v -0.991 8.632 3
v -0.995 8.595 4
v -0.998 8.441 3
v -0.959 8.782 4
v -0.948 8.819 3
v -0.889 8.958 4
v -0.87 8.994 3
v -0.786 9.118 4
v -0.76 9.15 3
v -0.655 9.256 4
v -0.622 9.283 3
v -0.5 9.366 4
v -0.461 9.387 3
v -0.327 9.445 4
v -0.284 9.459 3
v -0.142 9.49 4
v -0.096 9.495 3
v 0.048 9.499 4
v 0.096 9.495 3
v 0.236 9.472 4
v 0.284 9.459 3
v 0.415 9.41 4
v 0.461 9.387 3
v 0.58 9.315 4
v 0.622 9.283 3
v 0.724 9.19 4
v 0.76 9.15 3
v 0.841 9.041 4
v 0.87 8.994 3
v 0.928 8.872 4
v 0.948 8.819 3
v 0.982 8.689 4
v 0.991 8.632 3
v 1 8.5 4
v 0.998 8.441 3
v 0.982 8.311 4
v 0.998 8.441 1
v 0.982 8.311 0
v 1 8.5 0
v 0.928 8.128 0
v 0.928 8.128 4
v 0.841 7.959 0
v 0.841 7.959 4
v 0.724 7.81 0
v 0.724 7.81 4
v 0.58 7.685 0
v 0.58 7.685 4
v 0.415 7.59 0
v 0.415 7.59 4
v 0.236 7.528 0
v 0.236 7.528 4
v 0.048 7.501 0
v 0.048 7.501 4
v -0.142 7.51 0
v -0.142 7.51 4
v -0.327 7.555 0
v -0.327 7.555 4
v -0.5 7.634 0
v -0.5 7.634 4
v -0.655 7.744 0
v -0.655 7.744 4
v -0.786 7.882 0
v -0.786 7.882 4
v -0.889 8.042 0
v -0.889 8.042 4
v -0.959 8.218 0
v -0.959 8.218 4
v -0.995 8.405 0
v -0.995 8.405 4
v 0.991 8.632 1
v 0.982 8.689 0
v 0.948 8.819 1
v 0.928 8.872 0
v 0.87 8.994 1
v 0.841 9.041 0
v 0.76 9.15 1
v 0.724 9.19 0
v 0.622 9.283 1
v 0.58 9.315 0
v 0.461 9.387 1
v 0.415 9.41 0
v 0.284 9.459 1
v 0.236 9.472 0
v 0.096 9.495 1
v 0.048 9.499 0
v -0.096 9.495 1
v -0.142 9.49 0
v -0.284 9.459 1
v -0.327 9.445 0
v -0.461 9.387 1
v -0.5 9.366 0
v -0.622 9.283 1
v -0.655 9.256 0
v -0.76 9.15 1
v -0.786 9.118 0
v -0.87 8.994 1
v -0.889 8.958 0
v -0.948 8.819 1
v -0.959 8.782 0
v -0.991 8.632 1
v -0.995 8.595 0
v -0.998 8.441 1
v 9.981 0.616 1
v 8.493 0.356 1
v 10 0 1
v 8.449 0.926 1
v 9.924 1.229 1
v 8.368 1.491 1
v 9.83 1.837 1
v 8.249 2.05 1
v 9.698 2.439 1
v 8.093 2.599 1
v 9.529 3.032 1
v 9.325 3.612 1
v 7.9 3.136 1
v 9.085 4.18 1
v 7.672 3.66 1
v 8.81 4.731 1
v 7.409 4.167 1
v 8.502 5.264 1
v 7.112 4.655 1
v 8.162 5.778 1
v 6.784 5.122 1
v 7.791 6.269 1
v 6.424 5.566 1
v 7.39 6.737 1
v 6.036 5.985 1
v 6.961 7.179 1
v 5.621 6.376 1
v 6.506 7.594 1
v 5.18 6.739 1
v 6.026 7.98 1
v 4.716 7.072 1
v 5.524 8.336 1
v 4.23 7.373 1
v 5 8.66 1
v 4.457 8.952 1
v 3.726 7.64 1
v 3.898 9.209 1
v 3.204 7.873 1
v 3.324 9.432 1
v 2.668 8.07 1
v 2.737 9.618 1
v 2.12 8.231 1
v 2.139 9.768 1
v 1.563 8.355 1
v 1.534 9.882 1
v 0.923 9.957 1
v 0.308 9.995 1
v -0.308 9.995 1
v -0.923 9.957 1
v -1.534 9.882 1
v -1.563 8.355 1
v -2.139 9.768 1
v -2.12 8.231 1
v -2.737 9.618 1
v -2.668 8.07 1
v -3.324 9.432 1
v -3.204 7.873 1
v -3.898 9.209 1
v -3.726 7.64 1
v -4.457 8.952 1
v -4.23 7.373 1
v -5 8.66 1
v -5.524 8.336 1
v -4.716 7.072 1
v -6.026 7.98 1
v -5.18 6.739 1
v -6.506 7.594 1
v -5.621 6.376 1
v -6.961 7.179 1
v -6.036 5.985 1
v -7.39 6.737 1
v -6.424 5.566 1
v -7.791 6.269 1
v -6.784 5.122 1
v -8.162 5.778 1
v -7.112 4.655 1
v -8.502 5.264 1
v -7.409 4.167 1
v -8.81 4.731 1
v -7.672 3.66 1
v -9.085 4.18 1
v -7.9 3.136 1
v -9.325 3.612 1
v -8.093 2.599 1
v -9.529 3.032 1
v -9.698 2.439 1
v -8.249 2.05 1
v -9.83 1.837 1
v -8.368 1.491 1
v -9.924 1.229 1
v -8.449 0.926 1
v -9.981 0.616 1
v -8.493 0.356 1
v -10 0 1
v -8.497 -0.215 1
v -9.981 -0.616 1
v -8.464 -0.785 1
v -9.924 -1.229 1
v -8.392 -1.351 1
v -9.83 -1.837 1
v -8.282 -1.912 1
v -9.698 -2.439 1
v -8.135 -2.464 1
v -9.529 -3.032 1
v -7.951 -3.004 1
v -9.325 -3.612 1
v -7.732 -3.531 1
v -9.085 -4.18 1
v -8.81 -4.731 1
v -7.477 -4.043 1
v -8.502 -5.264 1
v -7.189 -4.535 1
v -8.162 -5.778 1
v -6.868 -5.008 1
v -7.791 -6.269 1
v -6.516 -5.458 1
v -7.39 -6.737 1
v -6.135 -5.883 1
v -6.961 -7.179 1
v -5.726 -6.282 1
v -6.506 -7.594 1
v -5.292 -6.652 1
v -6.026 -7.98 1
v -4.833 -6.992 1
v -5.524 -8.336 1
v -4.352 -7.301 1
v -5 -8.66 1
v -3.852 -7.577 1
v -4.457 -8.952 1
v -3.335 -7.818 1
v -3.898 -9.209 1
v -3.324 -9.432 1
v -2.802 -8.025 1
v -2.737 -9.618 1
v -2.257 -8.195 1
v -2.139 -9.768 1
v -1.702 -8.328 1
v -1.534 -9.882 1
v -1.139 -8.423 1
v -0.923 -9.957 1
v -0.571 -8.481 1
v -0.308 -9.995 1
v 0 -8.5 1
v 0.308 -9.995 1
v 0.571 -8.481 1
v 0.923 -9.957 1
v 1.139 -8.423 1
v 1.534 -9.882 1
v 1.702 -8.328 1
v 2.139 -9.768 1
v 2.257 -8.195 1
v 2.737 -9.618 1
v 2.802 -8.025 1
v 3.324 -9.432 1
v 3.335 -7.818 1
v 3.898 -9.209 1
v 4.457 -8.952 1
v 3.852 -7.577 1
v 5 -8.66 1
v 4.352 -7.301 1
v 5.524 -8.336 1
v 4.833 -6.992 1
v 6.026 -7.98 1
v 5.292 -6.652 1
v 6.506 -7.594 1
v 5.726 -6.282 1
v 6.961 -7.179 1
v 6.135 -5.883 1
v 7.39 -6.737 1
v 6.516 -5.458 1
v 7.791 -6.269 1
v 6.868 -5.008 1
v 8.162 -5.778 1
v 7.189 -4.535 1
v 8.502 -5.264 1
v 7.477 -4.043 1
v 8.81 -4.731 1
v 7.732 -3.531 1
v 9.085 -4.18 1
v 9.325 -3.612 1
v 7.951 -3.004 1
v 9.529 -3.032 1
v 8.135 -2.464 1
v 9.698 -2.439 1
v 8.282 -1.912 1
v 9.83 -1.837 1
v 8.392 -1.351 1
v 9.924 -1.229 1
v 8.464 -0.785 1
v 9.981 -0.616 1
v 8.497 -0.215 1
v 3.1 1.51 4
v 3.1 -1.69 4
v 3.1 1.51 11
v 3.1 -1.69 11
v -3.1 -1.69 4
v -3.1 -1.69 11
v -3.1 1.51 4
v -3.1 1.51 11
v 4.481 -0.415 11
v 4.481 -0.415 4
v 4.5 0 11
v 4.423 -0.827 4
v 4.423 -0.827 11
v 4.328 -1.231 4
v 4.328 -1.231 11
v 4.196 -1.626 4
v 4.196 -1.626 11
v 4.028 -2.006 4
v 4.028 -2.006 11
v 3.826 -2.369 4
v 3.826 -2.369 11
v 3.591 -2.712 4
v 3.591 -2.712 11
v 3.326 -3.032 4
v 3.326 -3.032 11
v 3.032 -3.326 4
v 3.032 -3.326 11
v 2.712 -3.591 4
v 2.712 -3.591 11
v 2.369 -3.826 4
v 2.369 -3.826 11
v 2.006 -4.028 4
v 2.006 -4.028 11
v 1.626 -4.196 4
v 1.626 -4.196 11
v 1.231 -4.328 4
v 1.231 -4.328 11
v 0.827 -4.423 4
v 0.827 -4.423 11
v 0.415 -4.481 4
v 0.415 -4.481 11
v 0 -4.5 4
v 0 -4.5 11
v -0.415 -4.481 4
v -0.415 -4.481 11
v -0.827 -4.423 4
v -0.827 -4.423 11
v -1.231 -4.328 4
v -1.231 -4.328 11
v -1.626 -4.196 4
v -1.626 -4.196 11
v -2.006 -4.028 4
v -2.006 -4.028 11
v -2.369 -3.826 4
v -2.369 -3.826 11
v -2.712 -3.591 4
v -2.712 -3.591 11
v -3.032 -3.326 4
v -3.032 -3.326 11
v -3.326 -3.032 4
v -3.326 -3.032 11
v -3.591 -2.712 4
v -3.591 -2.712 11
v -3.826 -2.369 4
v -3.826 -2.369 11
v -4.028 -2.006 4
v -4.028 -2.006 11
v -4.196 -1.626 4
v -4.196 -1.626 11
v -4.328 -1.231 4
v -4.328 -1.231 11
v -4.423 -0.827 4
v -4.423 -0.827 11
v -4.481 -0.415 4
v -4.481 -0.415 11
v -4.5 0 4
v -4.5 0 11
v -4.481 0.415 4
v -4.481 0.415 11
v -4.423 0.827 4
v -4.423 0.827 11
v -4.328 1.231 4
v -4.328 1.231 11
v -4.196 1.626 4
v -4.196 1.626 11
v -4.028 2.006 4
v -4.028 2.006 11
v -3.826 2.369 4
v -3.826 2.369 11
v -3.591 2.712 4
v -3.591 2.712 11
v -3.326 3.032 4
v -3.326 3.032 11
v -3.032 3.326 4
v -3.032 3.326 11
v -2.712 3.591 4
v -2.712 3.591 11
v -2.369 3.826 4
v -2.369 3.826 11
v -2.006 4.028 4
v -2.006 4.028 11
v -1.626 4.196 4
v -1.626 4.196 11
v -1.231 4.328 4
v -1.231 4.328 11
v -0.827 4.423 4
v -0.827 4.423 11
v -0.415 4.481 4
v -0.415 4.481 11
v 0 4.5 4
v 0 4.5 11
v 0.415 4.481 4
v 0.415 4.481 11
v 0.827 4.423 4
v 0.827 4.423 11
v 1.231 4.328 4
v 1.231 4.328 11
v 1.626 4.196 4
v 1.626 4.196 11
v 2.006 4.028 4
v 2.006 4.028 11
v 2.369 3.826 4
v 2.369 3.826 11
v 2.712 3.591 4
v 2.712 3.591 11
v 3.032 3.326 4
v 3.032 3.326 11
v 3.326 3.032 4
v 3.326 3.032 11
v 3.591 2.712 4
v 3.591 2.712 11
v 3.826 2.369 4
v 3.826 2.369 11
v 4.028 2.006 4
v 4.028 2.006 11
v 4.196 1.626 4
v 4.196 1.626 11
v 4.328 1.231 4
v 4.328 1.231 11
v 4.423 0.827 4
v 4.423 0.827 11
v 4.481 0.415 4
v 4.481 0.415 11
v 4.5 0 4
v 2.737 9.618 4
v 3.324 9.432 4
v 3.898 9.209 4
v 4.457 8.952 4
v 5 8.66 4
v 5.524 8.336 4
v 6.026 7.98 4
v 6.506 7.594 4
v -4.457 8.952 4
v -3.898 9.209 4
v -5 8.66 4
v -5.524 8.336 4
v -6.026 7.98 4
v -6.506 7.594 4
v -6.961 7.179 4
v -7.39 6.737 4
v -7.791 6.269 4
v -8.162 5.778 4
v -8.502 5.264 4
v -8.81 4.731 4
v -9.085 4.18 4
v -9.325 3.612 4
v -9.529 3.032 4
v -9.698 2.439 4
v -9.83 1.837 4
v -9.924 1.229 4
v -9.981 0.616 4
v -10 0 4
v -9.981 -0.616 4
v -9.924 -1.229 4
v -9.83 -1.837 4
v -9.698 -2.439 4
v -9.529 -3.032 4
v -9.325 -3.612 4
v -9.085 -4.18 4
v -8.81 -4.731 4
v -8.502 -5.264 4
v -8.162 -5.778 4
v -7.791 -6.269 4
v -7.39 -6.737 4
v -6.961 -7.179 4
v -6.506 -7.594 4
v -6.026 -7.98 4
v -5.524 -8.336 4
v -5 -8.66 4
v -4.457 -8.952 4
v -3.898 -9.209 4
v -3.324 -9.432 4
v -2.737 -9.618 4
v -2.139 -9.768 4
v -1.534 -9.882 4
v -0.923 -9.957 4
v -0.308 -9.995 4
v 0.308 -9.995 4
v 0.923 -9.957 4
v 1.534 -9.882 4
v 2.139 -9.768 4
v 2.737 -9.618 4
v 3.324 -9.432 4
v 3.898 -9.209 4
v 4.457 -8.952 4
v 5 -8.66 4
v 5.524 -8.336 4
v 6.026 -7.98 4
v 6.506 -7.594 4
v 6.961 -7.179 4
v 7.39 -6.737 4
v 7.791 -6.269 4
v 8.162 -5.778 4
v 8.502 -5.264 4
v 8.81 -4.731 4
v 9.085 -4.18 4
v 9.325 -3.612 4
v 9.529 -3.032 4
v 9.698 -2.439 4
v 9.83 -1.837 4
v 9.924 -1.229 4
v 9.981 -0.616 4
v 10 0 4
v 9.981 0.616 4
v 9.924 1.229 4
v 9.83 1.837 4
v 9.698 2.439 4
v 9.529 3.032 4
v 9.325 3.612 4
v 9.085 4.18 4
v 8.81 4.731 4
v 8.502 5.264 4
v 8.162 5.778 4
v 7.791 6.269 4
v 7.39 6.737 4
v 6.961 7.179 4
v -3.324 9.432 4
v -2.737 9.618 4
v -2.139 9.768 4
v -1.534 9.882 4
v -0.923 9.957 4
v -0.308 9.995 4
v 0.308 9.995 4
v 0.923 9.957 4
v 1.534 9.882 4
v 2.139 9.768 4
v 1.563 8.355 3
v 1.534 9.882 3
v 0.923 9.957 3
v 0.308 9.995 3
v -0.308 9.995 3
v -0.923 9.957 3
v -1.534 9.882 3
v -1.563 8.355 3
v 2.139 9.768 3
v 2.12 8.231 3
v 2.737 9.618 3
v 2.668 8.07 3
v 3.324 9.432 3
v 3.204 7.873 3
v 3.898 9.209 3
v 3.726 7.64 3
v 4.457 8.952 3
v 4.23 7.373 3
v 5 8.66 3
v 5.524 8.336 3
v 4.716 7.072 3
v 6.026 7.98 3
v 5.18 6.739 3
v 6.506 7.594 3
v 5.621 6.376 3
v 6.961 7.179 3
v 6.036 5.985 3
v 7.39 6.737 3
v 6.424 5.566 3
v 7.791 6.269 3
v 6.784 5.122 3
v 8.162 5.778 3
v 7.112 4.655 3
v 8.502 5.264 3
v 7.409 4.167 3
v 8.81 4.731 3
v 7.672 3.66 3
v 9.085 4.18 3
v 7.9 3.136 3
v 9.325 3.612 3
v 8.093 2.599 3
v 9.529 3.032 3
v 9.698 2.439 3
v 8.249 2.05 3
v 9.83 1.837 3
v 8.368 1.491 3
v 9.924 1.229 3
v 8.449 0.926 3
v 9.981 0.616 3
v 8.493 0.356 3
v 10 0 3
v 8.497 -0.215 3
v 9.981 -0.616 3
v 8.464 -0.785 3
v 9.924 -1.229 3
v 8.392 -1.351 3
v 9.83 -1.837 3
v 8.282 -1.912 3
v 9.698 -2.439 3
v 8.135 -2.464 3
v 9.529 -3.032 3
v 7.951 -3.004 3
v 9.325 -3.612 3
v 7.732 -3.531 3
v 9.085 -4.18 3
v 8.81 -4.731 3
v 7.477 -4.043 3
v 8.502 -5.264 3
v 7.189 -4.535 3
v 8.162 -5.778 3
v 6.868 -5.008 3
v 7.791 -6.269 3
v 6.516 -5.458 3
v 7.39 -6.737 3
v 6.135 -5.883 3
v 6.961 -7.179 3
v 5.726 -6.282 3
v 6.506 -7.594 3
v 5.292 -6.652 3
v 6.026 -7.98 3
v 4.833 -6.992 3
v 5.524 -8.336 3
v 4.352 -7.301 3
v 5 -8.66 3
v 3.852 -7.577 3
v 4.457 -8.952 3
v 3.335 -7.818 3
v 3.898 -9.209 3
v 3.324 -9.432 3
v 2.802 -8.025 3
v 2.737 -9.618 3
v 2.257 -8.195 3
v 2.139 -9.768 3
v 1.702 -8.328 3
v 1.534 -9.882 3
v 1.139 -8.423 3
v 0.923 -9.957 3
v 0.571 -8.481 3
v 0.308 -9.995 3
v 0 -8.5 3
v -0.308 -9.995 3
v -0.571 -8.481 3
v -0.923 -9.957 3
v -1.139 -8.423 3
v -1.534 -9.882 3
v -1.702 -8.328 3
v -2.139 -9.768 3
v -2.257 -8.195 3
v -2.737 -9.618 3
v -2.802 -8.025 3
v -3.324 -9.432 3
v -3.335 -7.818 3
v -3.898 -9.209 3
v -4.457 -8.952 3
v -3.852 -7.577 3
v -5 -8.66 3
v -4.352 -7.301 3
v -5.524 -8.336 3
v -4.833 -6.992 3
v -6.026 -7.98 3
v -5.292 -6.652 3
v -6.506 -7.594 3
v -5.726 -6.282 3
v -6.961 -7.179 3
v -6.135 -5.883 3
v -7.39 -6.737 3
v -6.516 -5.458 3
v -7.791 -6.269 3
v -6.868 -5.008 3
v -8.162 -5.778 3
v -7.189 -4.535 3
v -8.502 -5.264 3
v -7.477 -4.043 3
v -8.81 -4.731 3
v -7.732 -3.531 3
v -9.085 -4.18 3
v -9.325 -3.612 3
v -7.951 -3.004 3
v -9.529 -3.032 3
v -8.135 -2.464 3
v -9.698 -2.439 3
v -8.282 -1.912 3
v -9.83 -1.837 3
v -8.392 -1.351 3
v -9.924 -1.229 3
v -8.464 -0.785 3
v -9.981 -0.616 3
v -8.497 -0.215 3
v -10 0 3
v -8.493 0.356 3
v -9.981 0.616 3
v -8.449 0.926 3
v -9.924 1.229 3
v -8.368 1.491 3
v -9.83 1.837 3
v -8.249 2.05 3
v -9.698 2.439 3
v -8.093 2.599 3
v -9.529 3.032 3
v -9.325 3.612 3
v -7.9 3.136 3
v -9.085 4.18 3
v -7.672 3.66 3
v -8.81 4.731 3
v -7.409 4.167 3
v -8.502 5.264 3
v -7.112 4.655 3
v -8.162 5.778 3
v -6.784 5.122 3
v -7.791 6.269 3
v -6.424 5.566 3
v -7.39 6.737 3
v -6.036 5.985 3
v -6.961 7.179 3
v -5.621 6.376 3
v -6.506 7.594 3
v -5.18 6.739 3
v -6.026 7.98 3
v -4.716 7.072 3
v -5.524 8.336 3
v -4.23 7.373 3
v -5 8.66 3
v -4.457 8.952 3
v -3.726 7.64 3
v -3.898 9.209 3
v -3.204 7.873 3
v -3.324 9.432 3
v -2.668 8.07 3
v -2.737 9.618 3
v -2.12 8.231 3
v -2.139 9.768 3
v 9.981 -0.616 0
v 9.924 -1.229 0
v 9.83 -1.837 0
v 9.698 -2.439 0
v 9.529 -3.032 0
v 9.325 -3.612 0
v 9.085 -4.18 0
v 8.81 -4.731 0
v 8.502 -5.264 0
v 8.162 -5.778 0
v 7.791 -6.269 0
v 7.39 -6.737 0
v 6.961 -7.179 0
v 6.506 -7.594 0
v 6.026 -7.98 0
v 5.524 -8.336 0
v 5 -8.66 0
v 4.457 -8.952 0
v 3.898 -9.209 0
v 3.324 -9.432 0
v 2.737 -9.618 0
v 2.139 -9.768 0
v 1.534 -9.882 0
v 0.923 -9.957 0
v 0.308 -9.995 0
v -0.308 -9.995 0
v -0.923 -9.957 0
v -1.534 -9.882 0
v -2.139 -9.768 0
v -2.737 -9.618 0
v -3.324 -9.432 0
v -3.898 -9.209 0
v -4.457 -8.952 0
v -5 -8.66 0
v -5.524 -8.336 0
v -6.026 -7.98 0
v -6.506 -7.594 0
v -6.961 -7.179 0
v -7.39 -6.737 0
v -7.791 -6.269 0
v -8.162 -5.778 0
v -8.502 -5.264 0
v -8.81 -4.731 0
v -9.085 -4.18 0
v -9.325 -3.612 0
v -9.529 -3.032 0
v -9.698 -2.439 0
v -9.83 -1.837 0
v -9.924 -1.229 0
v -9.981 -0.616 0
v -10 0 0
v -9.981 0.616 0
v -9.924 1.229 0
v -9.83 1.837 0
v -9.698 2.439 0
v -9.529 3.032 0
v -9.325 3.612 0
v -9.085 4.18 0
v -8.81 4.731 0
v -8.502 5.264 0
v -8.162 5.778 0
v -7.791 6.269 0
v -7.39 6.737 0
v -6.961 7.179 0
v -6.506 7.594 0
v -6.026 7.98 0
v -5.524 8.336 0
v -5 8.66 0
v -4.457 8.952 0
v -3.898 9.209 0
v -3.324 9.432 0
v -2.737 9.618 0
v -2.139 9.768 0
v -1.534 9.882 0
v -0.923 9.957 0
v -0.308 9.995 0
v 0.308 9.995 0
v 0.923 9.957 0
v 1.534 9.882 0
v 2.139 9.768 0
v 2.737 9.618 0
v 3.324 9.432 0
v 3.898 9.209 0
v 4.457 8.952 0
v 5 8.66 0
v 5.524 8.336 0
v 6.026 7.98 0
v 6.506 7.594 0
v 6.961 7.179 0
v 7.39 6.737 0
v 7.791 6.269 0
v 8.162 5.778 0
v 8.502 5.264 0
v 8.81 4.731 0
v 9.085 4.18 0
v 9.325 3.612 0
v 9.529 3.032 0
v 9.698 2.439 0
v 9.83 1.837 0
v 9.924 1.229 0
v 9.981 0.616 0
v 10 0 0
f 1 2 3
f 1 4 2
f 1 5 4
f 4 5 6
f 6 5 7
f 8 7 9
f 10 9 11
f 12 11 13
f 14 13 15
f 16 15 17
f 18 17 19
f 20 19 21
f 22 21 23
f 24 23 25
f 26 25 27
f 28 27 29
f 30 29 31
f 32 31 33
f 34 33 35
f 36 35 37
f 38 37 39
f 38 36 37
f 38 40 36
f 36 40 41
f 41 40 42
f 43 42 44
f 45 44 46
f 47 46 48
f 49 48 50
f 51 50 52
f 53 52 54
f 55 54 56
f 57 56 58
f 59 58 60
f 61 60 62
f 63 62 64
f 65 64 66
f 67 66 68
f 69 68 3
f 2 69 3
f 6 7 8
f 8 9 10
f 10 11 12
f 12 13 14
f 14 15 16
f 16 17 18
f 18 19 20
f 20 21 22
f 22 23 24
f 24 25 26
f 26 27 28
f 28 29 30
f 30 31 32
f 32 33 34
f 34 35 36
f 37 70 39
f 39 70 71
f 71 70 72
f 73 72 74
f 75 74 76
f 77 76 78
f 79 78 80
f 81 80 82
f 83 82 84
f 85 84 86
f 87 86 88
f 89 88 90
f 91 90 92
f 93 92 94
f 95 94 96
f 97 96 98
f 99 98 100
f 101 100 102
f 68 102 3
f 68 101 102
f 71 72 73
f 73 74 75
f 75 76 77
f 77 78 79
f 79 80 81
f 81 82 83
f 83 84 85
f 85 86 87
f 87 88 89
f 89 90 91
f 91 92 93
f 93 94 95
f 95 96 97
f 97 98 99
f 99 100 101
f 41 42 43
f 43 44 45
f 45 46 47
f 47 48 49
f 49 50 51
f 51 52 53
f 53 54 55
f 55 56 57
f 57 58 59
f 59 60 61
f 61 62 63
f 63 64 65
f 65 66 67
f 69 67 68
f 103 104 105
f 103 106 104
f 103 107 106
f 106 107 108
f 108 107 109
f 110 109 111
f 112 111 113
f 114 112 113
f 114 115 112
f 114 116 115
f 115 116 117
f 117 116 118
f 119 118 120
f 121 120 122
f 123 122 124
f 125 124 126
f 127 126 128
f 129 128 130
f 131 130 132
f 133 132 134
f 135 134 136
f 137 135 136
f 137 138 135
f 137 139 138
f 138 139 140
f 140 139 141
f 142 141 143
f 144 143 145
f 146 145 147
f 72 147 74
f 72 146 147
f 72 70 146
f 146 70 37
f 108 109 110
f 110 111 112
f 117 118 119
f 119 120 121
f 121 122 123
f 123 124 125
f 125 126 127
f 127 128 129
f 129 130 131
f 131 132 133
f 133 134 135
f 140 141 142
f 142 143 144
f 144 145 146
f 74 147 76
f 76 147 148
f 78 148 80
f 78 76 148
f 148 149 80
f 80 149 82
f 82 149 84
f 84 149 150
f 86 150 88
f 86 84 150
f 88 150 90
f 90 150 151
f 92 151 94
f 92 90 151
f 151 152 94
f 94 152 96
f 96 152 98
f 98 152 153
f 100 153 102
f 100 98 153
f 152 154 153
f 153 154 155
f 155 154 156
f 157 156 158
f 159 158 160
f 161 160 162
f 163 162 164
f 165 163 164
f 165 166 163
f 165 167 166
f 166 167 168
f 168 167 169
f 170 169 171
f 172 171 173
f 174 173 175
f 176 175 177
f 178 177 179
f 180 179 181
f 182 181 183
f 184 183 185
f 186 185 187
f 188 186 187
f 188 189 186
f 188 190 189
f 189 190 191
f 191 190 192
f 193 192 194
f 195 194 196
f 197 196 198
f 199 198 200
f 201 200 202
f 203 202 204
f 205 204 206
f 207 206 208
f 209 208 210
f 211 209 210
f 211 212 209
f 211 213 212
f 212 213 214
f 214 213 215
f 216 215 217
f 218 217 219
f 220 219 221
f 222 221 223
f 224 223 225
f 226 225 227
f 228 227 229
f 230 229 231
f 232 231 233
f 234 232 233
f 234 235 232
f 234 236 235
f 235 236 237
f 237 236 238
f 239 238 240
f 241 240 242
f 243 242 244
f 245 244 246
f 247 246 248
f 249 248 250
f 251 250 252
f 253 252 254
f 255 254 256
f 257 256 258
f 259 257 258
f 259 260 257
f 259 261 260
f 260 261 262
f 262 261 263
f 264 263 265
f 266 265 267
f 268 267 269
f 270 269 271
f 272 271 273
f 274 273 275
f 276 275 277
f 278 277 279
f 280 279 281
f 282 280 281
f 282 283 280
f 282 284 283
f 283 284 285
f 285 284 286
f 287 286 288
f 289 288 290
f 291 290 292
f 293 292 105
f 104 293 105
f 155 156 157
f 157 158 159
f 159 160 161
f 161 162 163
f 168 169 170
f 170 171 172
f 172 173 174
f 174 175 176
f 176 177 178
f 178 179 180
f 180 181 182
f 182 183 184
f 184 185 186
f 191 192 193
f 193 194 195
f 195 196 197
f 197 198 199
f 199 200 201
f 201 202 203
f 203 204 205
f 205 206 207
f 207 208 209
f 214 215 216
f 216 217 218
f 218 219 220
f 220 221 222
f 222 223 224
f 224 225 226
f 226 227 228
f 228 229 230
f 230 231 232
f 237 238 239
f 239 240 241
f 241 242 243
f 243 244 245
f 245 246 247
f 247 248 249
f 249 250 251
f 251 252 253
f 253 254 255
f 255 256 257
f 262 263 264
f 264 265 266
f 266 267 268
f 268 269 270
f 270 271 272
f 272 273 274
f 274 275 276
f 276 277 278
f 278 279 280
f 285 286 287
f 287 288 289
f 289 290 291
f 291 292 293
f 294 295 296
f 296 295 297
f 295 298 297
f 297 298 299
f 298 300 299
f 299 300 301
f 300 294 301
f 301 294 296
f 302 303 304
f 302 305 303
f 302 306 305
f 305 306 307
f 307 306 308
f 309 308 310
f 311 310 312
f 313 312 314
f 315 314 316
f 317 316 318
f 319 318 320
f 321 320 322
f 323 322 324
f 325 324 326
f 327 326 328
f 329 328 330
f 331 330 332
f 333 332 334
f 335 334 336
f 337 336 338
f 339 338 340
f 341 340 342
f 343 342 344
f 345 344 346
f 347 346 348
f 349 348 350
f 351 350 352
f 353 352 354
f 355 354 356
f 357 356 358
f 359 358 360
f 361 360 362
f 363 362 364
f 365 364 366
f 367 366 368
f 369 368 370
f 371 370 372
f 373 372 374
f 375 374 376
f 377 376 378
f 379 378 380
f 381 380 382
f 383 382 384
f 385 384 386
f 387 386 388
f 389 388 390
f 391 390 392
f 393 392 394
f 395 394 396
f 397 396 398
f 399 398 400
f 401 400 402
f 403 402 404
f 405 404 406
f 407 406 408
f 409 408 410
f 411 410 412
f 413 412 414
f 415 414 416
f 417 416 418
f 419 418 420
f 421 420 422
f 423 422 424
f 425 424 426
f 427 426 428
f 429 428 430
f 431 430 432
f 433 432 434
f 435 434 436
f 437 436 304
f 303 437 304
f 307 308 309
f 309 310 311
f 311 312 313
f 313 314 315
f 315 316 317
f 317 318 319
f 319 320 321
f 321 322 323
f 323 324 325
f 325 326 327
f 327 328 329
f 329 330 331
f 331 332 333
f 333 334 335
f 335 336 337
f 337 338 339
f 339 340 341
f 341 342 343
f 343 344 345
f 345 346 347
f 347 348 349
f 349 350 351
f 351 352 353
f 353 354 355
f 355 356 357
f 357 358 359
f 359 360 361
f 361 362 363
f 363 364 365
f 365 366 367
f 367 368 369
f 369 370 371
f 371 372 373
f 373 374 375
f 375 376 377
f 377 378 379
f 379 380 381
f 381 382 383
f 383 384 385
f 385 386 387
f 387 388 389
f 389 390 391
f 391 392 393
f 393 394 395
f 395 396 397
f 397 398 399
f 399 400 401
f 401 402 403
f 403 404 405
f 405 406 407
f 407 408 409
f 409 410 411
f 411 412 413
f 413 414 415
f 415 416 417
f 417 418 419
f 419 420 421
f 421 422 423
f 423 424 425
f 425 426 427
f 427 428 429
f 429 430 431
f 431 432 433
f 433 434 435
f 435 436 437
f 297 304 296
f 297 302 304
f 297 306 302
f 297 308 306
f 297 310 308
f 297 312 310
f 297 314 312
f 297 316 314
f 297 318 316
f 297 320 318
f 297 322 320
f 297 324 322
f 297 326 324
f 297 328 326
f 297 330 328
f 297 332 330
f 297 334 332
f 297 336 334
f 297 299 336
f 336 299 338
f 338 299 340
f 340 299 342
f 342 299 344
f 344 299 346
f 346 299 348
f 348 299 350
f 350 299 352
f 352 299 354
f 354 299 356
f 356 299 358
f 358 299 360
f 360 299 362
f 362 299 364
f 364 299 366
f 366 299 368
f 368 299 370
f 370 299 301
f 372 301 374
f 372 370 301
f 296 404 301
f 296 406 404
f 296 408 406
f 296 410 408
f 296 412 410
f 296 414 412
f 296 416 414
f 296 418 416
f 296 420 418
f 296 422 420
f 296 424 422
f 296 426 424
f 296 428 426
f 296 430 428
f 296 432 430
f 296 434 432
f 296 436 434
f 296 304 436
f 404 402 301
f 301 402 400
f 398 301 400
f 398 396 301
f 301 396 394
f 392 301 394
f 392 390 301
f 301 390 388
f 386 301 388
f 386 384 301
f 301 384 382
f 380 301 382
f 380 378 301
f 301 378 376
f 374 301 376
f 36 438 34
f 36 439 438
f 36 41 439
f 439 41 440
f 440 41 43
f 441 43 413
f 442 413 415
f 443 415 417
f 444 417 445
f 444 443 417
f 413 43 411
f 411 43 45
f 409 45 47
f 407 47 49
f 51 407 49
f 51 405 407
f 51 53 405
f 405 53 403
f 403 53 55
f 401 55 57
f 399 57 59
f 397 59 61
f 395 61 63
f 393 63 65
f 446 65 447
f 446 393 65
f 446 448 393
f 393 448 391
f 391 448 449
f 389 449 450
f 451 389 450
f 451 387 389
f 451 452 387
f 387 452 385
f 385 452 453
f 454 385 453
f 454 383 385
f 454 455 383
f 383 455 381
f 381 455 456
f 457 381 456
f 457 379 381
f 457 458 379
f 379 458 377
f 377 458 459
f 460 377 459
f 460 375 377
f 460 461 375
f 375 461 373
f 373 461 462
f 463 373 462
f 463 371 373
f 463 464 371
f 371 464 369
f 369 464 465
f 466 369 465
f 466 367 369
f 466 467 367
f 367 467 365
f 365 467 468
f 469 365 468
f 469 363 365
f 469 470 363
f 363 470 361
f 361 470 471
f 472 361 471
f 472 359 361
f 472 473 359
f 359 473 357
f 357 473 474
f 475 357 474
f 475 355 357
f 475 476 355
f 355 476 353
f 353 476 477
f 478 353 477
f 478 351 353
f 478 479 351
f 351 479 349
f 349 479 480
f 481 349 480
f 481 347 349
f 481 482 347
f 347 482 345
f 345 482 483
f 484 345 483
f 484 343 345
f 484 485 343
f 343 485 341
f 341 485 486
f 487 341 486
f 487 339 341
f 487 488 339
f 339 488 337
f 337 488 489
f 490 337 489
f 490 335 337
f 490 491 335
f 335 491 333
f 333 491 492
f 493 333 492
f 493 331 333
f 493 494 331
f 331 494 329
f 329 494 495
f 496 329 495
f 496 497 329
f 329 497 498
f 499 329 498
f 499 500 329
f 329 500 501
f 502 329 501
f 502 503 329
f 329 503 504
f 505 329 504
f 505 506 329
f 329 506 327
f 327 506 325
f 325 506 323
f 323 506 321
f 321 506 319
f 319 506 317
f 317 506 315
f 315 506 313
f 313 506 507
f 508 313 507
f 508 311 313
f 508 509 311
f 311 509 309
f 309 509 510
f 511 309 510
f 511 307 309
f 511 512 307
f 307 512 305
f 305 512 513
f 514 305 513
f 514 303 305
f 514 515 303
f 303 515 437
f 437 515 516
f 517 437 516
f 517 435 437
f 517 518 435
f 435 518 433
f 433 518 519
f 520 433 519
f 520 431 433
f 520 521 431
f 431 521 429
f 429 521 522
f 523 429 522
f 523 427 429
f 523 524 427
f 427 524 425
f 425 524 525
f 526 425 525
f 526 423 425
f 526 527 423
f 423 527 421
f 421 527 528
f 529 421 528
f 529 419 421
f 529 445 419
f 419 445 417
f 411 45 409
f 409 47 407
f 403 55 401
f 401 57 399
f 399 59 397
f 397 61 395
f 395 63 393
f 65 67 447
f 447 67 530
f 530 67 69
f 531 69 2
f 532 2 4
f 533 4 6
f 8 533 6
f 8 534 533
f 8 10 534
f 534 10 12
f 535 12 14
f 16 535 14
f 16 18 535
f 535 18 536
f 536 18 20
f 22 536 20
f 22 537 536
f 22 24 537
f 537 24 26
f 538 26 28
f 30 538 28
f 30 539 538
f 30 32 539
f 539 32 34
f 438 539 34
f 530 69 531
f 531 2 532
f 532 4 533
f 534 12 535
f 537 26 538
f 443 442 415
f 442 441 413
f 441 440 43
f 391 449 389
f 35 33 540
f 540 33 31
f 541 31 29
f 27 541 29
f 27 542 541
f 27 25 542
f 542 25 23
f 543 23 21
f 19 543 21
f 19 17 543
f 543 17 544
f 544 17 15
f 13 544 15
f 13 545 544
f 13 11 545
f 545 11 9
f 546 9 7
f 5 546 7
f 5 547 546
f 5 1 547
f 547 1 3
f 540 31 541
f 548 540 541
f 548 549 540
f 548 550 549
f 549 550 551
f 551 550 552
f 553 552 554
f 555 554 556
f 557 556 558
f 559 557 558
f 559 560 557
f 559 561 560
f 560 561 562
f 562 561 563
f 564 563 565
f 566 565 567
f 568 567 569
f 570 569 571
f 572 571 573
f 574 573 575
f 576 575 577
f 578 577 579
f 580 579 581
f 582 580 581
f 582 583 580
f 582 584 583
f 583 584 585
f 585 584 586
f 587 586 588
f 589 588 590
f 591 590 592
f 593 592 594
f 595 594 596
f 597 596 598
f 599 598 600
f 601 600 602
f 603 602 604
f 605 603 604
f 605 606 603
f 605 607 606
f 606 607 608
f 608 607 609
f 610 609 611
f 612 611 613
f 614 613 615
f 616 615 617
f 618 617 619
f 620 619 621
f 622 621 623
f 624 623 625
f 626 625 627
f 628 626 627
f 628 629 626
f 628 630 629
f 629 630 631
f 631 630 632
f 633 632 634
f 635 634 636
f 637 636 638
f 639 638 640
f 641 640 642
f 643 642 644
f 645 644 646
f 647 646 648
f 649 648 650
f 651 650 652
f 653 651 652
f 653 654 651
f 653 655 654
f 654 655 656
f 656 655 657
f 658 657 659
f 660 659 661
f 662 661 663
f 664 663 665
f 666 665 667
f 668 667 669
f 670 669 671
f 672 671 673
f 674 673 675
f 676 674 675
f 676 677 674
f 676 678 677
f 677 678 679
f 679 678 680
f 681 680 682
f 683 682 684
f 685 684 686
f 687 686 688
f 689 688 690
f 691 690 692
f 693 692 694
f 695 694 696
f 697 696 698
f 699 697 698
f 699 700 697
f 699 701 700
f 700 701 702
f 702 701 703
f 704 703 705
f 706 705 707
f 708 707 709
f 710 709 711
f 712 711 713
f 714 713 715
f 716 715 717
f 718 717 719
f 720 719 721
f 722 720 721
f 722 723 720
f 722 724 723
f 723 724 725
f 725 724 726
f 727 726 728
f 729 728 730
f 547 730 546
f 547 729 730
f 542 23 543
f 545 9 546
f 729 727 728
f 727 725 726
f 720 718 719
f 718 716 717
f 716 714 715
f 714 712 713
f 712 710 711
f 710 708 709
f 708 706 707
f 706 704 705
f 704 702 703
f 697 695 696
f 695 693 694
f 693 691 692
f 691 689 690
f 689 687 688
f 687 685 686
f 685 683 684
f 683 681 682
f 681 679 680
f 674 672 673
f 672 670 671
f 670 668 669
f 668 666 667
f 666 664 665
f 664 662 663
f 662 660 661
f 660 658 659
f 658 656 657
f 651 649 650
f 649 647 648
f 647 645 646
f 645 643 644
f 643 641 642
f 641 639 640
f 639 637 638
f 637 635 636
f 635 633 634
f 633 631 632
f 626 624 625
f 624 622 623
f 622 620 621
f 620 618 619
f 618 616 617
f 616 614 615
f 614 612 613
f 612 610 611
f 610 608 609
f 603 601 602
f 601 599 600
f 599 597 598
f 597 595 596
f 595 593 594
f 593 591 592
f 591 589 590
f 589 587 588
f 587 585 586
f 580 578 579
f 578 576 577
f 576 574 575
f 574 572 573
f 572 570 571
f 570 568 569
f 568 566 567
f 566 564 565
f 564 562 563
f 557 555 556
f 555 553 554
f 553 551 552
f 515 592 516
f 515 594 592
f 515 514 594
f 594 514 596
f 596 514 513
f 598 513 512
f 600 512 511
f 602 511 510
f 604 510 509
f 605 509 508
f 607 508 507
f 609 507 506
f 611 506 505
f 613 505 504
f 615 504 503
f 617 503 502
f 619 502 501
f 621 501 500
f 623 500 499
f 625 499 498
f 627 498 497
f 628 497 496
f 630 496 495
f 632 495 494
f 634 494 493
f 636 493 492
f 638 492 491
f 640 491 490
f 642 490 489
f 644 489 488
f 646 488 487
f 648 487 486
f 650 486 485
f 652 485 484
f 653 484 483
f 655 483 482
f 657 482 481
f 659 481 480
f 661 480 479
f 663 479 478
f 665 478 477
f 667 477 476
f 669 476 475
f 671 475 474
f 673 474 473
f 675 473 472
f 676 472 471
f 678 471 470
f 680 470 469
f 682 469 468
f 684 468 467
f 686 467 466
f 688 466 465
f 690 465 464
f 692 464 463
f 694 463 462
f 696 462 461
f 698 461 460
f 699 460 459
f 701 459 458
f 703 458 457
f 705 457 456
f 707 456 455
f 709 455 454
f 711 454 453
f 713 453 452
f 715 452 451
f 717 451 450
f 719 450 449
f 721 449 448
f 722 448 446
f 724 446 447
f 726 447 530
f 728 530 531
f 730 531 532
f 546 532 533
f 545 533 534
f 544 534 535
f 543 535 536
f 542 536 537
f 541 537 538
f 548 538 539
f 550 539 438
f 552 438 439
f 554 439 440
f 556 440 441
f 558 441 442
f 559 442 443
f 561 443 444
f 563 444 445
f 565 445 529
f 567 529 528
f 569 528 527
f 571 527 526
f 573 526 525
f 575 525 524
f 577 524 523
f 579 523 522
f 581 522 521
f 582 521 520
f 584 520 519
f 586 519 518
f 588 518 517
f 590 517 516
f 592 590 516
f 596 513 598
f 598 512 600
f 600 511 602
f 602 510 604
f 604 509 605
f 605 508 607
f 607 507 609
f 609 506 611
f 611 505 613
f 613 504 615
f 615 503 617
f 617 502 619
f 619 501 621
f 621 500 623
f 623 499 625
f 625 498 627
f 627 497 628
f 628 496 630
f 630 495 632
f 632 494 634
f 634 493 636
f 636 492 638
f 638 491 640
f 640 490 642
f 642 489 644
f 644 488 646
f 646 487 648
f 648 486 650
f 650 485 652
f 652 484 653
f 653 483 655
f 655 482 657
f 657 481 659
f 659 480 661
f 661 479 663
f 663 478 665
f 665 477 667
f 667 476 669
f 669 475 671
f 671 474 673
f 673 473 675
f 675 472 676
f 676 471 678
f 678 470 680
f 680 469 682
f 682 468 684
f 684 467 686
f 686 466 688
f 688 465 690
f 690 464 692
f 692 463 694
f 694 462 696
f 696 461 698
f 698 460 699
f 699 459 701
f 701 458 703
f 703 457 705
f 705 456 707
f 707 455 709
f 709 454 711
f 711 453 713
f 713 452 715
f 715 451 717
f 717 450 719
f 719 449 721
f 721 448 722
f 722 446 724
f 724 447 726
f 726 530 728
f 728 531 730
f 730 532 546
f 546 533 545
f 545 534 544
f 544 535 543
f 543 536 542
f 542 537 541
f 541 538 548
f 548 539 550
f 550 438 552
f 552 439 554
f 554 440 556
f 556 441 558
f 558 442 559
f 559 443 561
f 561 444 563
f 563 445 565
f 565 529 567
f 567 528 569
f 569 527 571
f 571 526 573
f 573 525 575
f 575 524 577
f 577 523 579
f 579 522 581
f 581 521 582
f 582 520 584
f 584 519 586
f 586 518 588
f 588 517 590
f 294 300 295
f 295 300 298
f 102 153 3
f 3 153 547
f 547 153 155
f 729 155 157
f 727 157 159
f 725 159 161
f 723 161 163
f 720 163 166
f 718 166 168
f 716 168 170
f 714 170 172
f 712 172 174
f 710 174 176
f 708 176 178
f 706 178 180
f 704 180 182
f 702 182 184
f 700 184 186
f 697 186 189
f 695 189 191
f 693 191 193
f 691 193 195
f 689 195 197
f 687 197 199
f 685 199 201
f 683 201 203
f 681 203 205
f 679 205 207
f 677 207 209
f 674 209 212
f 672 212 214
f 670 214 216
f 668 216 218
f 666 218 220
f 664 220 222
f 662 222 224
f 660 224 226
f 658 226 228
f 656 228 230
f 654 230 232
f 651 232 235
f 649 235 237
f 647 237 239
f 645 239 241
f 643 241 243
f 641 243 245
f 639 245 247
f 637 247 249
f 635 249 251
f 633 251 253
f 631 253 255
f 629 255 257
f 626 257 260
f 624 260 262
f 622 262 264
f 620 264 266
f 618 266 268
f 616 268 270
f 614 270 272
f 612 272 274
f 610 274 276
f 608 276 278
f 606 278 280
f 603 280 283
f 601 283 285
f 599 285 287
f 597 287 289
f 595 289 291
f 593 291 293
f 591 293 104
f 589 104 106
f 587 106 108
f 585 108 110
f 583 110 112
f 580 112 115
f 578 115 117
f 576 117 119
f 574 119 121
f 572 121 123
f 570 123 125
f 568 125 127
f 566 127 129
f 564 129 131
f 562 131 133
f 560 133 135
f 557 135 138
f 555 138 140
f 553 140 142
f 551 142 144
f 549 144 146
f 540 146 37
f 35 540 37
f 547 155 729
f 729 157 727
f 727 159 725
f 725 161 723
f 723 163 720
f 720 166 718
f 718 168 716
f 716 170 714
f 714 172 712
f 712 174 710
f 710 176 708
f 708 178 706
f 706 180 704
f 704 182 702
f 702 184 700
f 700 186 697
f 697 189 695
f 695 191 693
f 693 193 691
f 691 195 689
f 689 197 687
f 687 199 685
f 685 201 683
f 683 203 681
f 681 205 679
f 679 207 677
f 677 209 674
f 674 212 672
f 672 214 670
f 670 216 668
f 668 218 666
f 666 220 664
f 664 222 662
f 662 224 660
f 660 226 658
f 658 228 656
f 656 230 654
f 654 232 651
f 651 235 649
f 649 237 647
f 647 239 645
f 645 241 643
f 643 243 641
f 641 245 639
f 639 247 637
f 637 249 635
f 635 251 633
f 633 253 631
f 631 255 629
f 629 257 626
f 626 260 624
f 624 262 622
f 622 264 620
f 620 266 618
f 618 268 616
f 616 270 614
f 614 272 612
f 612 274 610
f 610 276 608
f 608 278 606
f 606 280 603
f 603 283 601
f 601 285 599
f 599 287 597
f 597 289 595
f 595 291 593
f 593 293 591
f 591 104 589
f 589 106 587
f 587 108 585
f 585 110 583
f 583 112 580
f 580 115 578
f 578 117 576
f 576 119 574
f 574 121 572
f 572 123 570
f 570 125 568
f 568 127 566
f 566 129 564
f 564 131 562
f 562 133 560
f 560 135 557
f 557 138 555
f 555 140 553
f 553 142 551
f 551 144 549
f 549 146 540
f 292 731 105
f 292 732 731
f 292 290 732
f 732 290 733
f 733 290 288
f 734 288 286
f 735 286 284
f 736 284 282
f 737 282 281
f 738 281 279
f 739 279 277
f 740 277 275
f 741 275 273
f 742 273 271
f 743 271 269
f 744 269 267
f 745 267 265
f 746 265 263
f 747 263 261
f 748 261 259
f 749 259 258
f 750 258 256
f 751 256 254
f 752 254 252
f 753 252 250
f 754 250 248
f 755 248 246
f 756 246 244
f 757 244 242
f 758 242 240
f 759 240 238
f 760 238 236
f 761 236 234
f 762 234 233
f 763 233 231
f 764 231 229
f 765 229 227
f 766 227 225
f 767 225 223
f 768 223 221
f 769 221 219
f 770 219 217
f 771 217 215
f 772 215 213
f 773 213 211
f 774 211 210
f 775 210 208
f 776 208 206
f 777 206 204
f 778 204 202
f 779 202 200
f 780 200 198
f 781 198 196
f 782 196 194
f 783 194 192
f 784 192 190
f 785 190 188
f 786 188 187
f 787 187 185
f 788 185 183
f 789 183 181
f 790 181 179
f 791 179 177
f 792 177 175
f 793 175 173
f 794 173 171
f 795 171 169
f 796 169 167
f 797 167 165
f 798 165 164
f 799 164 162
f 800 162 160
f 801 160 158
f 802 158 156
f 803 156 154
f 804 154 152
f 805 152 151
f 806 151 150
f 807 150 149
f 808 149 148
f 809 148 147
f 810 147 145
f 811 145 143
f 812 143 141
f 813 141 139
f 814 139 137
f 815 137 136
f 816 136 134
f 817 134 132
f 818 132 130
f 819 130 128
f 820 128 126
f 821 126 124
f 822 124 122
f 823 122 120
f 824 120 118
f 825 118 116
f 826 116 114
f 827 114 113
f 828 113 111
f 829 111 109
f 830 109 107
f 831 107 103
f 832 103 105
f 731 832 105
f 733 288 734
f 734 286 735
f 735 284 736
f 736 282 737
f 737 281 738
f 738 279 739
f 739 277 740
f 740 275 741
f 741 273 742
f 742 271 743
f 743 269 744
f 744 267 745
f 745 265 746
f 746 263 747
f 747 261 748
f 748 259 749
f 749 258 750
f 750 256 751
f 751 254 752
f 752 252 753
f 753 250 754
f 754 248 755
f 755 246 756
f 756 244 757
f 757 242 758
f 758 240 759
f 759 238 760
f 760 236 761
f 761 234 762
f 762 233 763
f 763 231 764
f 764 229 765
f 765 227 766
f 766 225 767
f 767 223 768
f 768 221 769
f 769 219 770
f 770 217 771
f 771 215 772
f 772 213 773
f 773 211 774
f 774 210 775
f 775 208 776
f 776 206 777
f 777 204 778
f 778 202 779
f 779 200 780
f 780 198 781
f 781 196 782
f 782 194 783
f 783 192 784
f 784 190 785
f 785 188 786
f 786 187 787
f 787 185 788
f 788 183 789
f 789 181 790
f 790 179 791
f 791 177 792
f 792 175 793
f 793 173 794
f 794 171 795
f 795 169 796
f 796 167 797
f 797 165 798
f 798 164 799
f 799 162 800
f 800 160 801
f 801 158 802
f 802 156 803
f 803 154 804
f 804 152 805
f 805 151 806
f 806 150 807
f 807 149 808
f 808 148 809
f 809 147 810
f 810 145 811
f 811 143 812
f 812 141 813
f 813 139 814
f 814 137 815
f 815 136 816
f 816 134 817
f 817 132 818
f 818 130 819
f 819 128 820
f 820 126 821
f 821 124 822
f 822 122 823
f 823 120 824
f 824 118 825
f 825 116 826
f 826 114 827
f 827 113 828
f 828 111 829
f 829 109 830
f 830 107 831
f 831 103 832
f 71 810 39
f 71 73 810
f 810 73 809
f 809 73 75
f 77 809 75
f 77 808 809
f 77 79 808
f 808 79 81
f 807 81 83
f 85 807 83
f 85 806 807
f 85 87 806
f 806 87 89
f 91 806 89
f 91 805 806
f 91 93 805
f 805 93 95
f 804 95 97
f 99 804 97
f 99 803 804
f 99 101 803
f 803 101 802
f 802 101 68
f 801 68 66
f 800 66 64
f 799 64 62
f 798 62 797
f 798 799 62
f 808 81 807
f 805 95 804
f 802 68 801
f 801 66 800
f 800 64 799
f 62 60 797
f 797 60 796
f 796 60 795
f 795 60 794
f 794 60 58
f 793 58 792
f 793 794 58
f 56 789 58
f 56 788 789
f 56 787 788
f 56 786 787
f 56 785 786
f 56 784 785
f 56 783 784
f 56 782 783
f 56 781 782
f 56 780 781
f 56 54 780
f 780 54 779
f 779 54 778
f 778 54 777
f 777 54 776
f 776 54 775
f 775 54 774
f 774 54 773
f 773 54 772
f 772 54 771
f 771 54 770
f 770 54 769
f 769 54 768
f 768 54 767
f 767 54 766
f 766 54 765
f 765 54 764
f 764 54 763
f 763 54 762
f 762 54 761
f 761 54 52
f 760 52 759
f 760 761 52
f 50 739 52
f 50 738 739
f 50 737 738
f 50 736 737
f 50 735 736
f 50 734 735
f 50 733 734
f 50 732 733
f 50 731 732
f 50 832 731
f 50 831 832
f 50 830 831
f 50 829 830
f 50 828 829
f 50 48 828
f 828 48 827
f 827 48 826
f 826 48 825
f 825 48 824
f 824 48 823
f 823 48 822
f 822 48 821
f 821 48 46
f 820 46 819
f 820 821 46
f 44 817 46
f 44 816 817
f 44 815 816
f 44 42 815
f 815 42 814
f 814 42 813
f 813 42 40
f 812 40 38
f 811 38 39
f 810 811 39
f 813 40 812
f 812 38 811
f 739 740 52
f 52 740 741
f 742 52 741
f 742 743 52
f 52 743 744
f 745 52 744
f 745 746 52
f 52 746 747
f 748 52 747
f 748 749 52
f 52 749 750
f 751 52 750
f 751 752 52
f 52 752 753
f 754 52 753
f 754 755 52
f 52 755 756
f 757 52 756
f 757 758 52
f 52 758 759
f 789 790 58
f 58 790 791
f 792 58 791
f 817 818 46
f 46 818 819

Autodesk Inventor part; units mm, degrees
ref_plane "YZ Plane" through (0, 0, 0) normal (1, 0, 0) x (0, 1, 0)
ref_plane "XZ Plane" through (0, 0, 0) normal (0, 1, 0) x (-1, 0, 0)
ref_plane "XY Plane" through (0, 0, 0) normal (0, 0, 1) x (1, 0, 0)
sketch "Sketch1" plane through (0, 0, 0) normal (0, 0, 1) x (1, 0, 0)
  circle A0 centre (0, 0) radius 10
  circle A1 centre (0, 0) radius 8.5
  dimension "d0" = 20
  dimension "d1" = 17
extrude "Extrusion1" add sketch "Sketch1" along normal blind 1 contours A0 | A1
sketch "Sketch2" plane through (0, 0, 1) normal (0, 0, 1) x (1, 0, 0)
  circle A0 centre (0, 0) radius 8.5
  dimension "d4" = 17
extrude "Extrusion2" add sketch "Sketch2" along normal blind 2
sketch "Sketch3" plane through (0, 0, 3) normal (0, 0, 1) x (1, 0, 0)
  circle A0 centre (0, 0) radius 10
extrude "Extrusion3" add sketch "Sketch3" along normal blind 1
sketch "Sketch4" plane through (0, 0, 4) normal (0, 0, 1) x (1, 0, 0)
  circle A0 centre (0, 0) radius 4.5
  line L0 (-3.1, 1.51) -> (3.1, 1.51)
  line L1 (3.1, 1.51) -> (3.1, -1.69)
  line L2 (3.1, -1.69) -> (-3.1, -1.69)
  line L3 (-3.1, -1.69) -> (-3.1, 1.51)
  dimension "d9" = 9
  dimension "d10" = 6.2
  dimension "d11" = 3.2
  dimension "d12" = 1.51
  dimension "d13" = 3.1
extrude "Extrusion4" add sketch "Sketch4" along normal blind 7
sketch "Sketch5" plane through (0, 0, 4) normal (0, 0, 1) x (1, 0, 0)
  circle A0 centre (0, 0) radius 8.5 projected
  circle A1 centre (0, 8.5) radius 1
  dimension "d16" = 2
extrude "Extrusion5" cut sketch "Sketch5" against normal blind 7 contours A1 A0 | A0 A1 picked at (0.0387, 8.1646) picked at (0.0312, 8.8275)
properties part number "Stpper Wheel 2"
